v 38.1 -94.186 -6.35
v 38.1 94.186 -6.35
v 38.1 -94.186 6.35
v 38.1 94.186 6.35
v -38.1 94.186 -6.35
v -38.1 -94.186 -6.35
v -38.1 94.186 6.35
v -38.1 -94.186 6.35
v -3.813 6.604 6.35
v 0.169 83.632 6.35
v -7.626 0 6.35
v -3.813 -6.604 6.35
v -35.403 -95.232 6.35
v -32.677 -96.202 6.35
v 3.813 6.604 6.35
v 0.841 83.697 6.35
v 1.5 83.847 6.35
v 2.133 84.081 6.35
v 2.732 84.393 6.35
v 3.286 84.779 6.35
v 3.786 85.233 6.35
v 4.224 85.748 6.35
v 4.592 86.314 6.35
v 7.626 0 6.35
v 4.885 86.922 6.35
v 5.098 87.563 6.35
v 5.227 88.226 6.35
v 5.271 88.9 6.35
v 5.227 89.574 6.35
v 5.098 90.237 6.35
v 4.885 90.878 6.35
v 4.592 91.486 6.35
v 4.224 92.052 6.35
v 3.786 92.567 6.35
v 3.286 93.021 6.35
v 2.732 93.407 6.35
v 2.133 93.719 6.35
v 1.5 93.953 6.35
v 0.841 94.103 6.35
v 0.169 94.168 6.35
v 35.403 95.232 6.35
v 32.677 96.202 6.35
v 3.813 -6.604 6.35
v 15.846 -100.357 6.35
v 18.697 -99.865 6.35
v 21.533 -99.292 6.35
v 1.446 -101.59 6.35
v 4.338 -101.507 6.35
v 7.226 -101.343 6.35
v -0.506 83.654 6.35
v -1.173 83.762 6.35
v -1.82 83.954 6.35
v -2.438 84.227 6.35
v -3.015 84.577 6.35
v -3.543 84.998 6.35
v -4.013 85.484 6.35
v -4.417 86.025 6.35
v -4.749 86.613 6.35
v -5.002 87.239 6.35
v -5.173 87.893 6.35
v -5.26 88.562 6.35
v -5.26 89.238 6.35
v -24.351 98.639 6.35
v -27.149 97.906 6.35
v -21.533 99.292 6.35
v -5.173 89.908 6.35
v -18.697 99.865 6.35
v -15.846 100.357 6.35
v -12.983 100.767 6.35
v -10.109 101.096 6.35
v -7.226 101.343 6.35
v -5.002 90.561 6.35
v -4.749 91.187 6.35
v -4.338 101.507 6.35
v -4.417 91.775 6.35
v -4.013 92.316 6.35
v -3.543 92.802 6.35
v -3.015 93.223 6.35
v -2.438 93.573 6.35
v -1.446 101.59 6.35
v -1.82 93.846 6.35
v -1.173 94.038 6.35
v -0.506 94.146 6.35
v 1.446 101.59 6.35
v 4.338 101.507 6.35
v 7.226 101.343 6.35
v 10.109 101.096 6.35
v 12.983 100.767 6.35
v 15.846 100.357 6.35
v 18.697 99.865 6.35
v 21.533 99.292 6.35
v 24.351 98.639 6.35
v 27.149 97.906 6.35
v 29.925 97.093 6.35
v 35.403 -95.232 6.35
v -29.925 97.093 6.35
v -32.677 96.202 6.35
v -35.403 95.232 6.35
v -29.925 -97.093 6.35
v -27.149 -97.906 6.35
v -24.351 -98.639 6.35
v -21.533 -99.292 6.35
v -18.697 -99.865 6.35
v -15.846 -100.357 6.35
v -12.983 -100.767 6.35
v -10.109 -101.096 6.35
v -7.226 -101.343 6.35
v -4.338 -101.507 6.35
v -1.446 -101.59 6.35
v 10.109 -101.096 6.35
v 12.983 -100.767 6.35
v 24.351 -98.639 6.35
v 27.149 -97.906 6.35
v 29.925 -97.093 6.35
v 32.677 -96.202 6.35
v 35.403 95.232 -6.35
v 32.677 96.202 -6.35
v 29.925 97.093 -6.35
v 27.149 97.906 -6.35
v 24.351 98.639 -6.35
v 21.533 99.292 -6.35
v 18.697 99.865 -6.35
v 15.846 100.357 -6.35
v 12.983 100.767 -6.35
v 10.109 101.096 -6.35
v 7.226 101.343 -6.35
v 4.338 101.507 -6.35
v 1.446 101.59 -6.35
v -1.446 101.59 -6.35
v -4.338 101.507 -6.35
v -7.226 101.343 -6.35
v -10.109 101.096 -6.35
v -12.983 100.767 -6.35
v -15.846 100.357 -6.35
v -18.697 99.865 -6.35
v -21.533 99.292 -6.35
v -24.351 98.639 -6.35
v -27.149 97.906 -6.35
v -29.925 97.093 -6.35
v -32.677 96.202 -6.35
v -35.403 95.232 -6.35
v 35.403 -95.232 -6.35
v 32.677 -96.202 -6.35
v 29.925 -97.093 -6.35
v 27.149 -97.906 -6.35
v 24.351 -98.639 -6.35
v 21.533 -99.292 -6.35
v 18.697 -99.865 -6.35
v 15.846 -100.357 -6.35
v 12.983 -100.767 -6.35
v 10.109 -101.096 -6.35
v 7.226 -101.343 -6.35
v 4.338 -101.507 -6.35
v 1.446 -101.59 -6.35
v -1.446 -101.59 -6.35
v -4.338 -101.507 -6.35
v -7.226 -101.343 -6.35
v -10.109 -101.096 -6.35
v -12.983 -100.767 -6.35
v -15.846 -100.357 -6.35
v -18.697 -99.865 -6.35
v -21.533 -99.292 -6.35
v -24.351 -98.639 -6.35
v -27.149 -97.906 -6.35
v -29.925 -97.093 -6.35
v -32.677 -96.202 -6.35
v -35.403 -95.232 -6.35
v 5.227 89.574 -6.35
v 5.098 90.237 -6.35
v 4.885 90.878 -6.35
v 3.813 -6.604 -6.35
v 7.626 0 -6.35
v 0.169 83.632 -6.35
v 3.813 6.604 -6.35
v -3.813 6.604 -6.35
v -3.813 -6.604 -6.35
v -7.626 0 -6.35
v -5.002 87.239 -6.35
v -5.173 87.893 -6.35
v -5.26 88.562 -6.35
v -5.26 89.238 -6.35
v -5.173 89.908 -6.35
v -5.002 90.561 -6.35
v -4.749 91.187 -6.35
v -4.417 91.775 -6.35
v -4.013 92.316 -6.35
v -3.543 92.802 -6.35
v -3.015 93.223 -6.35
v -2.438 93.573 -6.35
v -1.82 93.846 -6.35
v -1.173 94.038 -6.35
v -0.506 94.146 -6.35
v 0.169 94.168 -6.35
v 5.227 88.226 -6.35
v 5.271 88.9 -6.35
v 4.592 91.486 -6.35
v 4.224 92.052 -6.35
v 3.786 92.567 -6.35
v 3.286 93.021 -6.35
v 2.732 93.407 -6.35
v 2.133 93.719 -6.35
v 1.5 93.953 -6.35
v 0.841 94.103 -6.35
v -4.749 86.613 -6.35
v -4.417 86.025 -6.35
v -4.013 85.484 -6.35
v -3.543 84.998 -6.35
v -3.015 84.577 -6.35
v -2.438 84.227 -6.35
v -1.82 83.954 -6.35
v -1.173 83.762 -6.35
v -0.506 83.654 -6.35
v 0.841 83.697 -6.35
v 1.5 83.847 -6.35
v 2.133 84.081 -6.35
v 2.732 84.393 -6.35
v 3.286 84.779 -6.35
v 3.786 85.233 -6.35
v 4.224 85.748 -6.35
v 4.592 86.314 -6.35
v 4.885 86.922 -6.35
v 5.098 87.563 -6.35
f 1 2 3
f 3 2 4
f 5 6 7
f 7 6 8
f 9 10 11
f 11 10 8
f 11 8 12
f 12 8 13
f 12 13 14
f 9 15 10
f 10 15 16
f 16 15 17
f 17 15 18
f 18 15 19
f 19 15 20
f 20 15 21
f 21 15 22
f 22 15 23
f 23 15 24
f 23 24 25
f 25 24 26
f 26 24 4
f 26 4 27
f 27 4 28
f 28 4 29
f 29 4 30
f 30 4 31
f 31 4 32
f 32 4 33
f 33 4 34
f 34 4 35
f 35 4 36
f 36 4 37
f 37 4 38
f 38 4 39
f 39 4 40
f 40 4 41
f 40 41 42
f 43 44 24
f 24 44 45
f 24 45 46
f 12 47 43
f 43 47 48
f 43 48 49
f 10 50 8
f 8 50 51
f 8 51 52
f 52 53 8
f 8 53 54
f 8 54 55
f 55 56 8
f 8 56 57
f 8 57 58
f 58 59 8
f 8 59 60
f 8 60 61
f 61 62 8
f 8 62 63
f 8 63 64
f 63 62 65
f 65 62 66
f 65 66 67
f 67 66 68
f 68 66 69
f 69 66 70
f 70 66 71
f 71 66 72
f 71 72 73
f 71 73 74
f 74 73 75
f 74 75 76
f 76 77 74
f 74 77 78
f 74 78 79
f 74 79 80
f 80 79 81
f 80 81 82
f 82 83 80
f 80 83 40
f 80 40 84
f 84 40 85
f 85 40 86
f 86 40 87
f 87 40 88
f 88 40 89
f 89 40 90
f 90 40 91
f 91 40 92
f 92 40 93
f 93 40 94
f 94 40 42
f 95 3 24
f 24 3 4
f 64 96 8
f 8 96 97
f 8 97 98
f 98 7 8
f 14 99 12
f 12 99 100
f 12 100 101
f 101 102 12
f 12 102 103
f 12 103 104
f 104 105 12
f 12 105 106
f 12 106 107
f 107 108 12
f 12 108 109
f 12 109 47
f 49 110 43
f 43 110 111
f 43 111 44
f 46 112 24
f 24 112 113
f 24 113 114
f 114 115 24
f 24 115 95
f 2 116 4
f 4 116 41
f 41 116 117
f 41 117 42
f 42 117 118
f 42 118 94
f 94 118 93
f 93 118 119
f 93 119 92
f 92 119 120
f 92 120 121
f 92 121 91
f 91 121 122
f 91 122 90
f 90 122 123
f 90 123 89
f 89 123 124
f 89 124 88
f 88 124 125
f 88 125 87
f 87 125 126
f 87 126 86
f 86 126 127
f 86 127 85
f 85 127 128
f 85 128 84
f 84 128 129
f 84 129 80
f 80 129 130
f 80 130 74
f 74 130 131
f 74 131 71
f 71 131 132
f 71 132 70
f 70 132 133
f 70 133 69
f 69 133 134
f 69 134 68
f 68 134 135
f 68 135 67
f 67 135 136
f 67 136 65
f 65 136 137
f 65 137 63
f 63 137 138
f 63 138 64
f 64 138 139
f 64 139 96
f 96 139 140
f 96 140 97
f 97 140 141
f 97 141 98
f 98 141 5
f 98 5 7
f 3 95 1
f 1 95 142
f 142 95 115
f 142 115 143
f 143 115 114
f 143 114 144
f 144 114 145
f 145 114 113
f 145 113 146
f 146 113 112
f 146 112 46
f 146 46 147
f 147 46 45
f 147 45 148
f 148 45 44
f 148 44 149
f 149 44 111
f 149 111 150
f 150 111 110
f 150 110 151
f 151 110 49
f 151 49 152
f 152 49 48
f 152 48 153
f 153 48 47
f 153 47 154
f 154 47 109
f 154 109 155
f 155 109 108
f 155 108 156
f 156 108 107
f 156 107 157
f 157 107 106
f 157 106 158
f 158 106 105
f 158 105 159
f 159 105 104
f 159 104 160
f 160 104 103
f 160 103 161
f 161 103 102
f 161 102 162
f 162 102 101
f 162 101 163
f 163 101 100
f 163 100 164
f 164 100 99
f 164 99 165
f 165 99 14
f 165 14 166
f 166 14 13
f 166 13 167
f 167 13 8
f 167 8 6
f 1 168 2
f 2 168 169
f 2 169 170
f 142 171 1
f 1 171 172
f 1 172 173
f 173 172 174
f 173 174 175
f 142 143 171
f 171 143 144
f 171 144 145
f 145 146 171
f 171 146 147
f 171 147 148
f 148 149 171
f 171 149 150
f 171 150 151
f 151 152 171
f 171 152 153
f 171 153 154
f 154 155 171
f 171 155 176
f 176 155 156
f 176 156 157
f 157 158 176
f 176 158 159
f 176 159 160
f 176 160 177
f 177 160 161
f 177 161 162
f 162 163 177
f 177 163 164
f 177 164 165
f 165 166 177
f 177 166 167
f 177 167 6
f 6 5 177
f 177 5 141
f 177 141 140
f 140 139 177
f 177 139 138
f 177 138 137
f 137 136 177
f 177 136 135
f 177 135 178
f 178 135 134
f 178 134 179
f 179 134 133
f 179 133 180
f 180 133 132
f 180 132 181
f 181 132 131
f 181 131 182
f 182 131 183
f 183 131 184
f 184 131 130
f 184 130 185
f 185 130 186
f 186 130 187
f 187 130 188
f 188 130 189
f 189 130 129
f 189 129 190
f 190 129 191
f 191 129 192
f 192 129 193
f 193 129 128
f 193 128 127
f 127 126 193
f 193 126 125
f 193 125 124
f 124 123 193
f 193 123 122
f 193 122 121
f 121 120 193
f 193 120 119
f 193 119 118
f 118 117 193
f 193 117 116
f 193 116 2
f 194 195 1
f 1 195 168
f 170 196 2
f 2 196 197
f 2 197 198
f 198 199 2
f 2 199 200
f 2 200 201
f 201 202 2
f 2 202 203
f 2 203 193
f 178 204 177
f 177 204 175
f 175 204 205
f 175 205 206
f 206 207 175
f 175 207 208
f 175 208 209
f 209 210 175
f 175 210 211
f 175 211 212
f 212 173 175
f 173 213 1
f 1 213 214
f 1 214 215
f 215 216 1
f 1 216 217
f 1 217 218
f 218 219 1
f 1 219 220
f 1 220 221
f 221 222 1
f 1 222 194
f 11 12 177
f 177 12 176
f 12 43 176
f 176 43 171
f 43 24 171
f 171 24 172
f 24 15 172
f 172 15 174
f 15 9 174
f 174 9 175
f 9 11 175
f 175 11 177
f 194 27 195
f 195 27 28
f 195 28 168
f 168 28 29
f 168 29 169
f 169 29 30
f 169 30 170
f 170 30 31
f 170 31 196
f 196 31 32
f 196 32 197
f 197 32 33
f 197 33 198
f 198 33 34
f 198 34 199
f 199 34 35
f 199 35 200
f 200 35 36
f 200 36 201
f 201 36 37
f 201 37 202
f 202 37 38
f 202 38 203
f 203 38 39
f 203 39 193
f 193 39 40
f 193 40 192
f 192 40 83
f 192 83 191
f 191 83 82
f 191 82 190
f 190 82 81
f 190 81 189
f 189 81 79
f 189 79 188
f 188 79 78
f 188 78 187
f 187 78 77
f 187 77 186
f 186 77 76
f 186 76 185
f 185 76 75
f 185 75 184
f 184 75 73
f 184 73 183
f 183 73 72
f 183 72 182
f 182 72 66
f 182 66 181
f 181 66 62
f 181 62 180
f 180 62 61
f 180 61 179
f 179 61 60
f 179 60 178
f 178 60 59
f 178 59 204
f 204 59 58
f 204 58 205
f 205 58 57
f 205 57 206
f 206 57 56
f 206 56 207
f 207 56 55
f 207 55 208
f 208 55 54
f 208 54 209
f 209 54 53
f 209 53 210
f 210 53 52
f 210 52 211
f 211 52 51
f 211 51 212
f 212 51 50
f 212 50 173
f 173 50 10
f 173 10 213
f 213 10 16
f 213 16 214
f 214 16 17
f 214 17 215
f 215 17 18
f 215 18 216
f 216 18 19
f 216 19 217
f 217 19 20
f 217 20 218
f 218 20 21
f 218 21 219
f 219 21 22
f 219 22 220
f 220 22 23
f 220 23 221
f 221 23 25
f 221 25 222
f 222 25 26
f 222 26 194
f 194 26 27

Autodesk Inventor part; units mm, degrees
ref_plane "YZ Plane" through (0, 0, 0) normal (1, 0, 0) x (0, 1, 0)
ref_plane "XZ Plane" through (0, 0, 0) normal (0, 1, 0) x (-1, 0, 0)
ref_plane "XY Plane" through (0, 0, 0) normal (0, 0, 1) x (1, 0, 0)
sketch "Sketch1" plane through (0, 0, 0) normal (0, 0, 1) x (1, 0, 0)
  circle A0 centre (0, 0) radius 101.6
  line L0 (7.6256, 0) -> (3.8128, -6.604)
  line L1 (3.8128, -6.604) -> (-3.8128, -6.604)
  line L2 (-3.8128, -6.604) -> (-7.6256, 0)
  line L3 (-7.6256, 0) -> (-3.8128, 6.604)
  line L4 (-3.8128, 6.604) -> (3.8128, 6.604)
  line L5 (3.8128, 6.604) -> (7.6256, 0)
  circle A1 centre (0, 88.9) radius 5.2705
  dimension "d0" = 203.2
  dimension "d1" = 13.208
  dimension "d2" = 10.541
  dimension "d5" = 88.9
extrude "Extrusion1" add sketch "Sketch1" along normal mid plane 12.7
sketch "Sketch4" plane through (0, 0, 6.35) normal (0, 0, 1) x (1, 0, 0)
  circle A0 centre (0, 0) radius 101.6 projected
  line L0 (-38.1, 94.1857) -> (-38.1, -94.1857)
  line L1 (38.1, 94.1857) -> (38.1, -94.1857)
  arc A1 (-38.1, 94.1857) -> (-38.1, -94.1857) centre (0, 0) ccw
  arc A2 (38.1, -94.1857) -> (38.1, 94.1857) centre (0, 0) ccw
  dimension "d18" = 38.1
  dimension "d19" = 38.1
extrude "Extrusion4" cut sketch "Sketch4" against normal through all contours A0 L1 | L0 A0
sketch "Sketch2" plane through (0, 0, 6.35) normal (0, 0, 1) x (1, 0, 0)
  circle A0 centre (-63.5, 0) radius 25.4
  circle A1 centre (-31.75, -54.9926) radius 25.4
  circle A2 centre (31.75, -54.9926) radius 25.4
  circle A3 centre (63.5, 0) radius 25.4
  circle A4 centre (31.75, 54.9926) radius 25.4
  circle A5 centre (-31.75, 54.9926) radius 25.4
  point P0 (0, 0)
  dimension "d6" = 50.8
  dimension "d7" = 63.5
  dimension "d10" = 360
properties part number "driveForPiston-7-inV03" material "PET Plastic"
